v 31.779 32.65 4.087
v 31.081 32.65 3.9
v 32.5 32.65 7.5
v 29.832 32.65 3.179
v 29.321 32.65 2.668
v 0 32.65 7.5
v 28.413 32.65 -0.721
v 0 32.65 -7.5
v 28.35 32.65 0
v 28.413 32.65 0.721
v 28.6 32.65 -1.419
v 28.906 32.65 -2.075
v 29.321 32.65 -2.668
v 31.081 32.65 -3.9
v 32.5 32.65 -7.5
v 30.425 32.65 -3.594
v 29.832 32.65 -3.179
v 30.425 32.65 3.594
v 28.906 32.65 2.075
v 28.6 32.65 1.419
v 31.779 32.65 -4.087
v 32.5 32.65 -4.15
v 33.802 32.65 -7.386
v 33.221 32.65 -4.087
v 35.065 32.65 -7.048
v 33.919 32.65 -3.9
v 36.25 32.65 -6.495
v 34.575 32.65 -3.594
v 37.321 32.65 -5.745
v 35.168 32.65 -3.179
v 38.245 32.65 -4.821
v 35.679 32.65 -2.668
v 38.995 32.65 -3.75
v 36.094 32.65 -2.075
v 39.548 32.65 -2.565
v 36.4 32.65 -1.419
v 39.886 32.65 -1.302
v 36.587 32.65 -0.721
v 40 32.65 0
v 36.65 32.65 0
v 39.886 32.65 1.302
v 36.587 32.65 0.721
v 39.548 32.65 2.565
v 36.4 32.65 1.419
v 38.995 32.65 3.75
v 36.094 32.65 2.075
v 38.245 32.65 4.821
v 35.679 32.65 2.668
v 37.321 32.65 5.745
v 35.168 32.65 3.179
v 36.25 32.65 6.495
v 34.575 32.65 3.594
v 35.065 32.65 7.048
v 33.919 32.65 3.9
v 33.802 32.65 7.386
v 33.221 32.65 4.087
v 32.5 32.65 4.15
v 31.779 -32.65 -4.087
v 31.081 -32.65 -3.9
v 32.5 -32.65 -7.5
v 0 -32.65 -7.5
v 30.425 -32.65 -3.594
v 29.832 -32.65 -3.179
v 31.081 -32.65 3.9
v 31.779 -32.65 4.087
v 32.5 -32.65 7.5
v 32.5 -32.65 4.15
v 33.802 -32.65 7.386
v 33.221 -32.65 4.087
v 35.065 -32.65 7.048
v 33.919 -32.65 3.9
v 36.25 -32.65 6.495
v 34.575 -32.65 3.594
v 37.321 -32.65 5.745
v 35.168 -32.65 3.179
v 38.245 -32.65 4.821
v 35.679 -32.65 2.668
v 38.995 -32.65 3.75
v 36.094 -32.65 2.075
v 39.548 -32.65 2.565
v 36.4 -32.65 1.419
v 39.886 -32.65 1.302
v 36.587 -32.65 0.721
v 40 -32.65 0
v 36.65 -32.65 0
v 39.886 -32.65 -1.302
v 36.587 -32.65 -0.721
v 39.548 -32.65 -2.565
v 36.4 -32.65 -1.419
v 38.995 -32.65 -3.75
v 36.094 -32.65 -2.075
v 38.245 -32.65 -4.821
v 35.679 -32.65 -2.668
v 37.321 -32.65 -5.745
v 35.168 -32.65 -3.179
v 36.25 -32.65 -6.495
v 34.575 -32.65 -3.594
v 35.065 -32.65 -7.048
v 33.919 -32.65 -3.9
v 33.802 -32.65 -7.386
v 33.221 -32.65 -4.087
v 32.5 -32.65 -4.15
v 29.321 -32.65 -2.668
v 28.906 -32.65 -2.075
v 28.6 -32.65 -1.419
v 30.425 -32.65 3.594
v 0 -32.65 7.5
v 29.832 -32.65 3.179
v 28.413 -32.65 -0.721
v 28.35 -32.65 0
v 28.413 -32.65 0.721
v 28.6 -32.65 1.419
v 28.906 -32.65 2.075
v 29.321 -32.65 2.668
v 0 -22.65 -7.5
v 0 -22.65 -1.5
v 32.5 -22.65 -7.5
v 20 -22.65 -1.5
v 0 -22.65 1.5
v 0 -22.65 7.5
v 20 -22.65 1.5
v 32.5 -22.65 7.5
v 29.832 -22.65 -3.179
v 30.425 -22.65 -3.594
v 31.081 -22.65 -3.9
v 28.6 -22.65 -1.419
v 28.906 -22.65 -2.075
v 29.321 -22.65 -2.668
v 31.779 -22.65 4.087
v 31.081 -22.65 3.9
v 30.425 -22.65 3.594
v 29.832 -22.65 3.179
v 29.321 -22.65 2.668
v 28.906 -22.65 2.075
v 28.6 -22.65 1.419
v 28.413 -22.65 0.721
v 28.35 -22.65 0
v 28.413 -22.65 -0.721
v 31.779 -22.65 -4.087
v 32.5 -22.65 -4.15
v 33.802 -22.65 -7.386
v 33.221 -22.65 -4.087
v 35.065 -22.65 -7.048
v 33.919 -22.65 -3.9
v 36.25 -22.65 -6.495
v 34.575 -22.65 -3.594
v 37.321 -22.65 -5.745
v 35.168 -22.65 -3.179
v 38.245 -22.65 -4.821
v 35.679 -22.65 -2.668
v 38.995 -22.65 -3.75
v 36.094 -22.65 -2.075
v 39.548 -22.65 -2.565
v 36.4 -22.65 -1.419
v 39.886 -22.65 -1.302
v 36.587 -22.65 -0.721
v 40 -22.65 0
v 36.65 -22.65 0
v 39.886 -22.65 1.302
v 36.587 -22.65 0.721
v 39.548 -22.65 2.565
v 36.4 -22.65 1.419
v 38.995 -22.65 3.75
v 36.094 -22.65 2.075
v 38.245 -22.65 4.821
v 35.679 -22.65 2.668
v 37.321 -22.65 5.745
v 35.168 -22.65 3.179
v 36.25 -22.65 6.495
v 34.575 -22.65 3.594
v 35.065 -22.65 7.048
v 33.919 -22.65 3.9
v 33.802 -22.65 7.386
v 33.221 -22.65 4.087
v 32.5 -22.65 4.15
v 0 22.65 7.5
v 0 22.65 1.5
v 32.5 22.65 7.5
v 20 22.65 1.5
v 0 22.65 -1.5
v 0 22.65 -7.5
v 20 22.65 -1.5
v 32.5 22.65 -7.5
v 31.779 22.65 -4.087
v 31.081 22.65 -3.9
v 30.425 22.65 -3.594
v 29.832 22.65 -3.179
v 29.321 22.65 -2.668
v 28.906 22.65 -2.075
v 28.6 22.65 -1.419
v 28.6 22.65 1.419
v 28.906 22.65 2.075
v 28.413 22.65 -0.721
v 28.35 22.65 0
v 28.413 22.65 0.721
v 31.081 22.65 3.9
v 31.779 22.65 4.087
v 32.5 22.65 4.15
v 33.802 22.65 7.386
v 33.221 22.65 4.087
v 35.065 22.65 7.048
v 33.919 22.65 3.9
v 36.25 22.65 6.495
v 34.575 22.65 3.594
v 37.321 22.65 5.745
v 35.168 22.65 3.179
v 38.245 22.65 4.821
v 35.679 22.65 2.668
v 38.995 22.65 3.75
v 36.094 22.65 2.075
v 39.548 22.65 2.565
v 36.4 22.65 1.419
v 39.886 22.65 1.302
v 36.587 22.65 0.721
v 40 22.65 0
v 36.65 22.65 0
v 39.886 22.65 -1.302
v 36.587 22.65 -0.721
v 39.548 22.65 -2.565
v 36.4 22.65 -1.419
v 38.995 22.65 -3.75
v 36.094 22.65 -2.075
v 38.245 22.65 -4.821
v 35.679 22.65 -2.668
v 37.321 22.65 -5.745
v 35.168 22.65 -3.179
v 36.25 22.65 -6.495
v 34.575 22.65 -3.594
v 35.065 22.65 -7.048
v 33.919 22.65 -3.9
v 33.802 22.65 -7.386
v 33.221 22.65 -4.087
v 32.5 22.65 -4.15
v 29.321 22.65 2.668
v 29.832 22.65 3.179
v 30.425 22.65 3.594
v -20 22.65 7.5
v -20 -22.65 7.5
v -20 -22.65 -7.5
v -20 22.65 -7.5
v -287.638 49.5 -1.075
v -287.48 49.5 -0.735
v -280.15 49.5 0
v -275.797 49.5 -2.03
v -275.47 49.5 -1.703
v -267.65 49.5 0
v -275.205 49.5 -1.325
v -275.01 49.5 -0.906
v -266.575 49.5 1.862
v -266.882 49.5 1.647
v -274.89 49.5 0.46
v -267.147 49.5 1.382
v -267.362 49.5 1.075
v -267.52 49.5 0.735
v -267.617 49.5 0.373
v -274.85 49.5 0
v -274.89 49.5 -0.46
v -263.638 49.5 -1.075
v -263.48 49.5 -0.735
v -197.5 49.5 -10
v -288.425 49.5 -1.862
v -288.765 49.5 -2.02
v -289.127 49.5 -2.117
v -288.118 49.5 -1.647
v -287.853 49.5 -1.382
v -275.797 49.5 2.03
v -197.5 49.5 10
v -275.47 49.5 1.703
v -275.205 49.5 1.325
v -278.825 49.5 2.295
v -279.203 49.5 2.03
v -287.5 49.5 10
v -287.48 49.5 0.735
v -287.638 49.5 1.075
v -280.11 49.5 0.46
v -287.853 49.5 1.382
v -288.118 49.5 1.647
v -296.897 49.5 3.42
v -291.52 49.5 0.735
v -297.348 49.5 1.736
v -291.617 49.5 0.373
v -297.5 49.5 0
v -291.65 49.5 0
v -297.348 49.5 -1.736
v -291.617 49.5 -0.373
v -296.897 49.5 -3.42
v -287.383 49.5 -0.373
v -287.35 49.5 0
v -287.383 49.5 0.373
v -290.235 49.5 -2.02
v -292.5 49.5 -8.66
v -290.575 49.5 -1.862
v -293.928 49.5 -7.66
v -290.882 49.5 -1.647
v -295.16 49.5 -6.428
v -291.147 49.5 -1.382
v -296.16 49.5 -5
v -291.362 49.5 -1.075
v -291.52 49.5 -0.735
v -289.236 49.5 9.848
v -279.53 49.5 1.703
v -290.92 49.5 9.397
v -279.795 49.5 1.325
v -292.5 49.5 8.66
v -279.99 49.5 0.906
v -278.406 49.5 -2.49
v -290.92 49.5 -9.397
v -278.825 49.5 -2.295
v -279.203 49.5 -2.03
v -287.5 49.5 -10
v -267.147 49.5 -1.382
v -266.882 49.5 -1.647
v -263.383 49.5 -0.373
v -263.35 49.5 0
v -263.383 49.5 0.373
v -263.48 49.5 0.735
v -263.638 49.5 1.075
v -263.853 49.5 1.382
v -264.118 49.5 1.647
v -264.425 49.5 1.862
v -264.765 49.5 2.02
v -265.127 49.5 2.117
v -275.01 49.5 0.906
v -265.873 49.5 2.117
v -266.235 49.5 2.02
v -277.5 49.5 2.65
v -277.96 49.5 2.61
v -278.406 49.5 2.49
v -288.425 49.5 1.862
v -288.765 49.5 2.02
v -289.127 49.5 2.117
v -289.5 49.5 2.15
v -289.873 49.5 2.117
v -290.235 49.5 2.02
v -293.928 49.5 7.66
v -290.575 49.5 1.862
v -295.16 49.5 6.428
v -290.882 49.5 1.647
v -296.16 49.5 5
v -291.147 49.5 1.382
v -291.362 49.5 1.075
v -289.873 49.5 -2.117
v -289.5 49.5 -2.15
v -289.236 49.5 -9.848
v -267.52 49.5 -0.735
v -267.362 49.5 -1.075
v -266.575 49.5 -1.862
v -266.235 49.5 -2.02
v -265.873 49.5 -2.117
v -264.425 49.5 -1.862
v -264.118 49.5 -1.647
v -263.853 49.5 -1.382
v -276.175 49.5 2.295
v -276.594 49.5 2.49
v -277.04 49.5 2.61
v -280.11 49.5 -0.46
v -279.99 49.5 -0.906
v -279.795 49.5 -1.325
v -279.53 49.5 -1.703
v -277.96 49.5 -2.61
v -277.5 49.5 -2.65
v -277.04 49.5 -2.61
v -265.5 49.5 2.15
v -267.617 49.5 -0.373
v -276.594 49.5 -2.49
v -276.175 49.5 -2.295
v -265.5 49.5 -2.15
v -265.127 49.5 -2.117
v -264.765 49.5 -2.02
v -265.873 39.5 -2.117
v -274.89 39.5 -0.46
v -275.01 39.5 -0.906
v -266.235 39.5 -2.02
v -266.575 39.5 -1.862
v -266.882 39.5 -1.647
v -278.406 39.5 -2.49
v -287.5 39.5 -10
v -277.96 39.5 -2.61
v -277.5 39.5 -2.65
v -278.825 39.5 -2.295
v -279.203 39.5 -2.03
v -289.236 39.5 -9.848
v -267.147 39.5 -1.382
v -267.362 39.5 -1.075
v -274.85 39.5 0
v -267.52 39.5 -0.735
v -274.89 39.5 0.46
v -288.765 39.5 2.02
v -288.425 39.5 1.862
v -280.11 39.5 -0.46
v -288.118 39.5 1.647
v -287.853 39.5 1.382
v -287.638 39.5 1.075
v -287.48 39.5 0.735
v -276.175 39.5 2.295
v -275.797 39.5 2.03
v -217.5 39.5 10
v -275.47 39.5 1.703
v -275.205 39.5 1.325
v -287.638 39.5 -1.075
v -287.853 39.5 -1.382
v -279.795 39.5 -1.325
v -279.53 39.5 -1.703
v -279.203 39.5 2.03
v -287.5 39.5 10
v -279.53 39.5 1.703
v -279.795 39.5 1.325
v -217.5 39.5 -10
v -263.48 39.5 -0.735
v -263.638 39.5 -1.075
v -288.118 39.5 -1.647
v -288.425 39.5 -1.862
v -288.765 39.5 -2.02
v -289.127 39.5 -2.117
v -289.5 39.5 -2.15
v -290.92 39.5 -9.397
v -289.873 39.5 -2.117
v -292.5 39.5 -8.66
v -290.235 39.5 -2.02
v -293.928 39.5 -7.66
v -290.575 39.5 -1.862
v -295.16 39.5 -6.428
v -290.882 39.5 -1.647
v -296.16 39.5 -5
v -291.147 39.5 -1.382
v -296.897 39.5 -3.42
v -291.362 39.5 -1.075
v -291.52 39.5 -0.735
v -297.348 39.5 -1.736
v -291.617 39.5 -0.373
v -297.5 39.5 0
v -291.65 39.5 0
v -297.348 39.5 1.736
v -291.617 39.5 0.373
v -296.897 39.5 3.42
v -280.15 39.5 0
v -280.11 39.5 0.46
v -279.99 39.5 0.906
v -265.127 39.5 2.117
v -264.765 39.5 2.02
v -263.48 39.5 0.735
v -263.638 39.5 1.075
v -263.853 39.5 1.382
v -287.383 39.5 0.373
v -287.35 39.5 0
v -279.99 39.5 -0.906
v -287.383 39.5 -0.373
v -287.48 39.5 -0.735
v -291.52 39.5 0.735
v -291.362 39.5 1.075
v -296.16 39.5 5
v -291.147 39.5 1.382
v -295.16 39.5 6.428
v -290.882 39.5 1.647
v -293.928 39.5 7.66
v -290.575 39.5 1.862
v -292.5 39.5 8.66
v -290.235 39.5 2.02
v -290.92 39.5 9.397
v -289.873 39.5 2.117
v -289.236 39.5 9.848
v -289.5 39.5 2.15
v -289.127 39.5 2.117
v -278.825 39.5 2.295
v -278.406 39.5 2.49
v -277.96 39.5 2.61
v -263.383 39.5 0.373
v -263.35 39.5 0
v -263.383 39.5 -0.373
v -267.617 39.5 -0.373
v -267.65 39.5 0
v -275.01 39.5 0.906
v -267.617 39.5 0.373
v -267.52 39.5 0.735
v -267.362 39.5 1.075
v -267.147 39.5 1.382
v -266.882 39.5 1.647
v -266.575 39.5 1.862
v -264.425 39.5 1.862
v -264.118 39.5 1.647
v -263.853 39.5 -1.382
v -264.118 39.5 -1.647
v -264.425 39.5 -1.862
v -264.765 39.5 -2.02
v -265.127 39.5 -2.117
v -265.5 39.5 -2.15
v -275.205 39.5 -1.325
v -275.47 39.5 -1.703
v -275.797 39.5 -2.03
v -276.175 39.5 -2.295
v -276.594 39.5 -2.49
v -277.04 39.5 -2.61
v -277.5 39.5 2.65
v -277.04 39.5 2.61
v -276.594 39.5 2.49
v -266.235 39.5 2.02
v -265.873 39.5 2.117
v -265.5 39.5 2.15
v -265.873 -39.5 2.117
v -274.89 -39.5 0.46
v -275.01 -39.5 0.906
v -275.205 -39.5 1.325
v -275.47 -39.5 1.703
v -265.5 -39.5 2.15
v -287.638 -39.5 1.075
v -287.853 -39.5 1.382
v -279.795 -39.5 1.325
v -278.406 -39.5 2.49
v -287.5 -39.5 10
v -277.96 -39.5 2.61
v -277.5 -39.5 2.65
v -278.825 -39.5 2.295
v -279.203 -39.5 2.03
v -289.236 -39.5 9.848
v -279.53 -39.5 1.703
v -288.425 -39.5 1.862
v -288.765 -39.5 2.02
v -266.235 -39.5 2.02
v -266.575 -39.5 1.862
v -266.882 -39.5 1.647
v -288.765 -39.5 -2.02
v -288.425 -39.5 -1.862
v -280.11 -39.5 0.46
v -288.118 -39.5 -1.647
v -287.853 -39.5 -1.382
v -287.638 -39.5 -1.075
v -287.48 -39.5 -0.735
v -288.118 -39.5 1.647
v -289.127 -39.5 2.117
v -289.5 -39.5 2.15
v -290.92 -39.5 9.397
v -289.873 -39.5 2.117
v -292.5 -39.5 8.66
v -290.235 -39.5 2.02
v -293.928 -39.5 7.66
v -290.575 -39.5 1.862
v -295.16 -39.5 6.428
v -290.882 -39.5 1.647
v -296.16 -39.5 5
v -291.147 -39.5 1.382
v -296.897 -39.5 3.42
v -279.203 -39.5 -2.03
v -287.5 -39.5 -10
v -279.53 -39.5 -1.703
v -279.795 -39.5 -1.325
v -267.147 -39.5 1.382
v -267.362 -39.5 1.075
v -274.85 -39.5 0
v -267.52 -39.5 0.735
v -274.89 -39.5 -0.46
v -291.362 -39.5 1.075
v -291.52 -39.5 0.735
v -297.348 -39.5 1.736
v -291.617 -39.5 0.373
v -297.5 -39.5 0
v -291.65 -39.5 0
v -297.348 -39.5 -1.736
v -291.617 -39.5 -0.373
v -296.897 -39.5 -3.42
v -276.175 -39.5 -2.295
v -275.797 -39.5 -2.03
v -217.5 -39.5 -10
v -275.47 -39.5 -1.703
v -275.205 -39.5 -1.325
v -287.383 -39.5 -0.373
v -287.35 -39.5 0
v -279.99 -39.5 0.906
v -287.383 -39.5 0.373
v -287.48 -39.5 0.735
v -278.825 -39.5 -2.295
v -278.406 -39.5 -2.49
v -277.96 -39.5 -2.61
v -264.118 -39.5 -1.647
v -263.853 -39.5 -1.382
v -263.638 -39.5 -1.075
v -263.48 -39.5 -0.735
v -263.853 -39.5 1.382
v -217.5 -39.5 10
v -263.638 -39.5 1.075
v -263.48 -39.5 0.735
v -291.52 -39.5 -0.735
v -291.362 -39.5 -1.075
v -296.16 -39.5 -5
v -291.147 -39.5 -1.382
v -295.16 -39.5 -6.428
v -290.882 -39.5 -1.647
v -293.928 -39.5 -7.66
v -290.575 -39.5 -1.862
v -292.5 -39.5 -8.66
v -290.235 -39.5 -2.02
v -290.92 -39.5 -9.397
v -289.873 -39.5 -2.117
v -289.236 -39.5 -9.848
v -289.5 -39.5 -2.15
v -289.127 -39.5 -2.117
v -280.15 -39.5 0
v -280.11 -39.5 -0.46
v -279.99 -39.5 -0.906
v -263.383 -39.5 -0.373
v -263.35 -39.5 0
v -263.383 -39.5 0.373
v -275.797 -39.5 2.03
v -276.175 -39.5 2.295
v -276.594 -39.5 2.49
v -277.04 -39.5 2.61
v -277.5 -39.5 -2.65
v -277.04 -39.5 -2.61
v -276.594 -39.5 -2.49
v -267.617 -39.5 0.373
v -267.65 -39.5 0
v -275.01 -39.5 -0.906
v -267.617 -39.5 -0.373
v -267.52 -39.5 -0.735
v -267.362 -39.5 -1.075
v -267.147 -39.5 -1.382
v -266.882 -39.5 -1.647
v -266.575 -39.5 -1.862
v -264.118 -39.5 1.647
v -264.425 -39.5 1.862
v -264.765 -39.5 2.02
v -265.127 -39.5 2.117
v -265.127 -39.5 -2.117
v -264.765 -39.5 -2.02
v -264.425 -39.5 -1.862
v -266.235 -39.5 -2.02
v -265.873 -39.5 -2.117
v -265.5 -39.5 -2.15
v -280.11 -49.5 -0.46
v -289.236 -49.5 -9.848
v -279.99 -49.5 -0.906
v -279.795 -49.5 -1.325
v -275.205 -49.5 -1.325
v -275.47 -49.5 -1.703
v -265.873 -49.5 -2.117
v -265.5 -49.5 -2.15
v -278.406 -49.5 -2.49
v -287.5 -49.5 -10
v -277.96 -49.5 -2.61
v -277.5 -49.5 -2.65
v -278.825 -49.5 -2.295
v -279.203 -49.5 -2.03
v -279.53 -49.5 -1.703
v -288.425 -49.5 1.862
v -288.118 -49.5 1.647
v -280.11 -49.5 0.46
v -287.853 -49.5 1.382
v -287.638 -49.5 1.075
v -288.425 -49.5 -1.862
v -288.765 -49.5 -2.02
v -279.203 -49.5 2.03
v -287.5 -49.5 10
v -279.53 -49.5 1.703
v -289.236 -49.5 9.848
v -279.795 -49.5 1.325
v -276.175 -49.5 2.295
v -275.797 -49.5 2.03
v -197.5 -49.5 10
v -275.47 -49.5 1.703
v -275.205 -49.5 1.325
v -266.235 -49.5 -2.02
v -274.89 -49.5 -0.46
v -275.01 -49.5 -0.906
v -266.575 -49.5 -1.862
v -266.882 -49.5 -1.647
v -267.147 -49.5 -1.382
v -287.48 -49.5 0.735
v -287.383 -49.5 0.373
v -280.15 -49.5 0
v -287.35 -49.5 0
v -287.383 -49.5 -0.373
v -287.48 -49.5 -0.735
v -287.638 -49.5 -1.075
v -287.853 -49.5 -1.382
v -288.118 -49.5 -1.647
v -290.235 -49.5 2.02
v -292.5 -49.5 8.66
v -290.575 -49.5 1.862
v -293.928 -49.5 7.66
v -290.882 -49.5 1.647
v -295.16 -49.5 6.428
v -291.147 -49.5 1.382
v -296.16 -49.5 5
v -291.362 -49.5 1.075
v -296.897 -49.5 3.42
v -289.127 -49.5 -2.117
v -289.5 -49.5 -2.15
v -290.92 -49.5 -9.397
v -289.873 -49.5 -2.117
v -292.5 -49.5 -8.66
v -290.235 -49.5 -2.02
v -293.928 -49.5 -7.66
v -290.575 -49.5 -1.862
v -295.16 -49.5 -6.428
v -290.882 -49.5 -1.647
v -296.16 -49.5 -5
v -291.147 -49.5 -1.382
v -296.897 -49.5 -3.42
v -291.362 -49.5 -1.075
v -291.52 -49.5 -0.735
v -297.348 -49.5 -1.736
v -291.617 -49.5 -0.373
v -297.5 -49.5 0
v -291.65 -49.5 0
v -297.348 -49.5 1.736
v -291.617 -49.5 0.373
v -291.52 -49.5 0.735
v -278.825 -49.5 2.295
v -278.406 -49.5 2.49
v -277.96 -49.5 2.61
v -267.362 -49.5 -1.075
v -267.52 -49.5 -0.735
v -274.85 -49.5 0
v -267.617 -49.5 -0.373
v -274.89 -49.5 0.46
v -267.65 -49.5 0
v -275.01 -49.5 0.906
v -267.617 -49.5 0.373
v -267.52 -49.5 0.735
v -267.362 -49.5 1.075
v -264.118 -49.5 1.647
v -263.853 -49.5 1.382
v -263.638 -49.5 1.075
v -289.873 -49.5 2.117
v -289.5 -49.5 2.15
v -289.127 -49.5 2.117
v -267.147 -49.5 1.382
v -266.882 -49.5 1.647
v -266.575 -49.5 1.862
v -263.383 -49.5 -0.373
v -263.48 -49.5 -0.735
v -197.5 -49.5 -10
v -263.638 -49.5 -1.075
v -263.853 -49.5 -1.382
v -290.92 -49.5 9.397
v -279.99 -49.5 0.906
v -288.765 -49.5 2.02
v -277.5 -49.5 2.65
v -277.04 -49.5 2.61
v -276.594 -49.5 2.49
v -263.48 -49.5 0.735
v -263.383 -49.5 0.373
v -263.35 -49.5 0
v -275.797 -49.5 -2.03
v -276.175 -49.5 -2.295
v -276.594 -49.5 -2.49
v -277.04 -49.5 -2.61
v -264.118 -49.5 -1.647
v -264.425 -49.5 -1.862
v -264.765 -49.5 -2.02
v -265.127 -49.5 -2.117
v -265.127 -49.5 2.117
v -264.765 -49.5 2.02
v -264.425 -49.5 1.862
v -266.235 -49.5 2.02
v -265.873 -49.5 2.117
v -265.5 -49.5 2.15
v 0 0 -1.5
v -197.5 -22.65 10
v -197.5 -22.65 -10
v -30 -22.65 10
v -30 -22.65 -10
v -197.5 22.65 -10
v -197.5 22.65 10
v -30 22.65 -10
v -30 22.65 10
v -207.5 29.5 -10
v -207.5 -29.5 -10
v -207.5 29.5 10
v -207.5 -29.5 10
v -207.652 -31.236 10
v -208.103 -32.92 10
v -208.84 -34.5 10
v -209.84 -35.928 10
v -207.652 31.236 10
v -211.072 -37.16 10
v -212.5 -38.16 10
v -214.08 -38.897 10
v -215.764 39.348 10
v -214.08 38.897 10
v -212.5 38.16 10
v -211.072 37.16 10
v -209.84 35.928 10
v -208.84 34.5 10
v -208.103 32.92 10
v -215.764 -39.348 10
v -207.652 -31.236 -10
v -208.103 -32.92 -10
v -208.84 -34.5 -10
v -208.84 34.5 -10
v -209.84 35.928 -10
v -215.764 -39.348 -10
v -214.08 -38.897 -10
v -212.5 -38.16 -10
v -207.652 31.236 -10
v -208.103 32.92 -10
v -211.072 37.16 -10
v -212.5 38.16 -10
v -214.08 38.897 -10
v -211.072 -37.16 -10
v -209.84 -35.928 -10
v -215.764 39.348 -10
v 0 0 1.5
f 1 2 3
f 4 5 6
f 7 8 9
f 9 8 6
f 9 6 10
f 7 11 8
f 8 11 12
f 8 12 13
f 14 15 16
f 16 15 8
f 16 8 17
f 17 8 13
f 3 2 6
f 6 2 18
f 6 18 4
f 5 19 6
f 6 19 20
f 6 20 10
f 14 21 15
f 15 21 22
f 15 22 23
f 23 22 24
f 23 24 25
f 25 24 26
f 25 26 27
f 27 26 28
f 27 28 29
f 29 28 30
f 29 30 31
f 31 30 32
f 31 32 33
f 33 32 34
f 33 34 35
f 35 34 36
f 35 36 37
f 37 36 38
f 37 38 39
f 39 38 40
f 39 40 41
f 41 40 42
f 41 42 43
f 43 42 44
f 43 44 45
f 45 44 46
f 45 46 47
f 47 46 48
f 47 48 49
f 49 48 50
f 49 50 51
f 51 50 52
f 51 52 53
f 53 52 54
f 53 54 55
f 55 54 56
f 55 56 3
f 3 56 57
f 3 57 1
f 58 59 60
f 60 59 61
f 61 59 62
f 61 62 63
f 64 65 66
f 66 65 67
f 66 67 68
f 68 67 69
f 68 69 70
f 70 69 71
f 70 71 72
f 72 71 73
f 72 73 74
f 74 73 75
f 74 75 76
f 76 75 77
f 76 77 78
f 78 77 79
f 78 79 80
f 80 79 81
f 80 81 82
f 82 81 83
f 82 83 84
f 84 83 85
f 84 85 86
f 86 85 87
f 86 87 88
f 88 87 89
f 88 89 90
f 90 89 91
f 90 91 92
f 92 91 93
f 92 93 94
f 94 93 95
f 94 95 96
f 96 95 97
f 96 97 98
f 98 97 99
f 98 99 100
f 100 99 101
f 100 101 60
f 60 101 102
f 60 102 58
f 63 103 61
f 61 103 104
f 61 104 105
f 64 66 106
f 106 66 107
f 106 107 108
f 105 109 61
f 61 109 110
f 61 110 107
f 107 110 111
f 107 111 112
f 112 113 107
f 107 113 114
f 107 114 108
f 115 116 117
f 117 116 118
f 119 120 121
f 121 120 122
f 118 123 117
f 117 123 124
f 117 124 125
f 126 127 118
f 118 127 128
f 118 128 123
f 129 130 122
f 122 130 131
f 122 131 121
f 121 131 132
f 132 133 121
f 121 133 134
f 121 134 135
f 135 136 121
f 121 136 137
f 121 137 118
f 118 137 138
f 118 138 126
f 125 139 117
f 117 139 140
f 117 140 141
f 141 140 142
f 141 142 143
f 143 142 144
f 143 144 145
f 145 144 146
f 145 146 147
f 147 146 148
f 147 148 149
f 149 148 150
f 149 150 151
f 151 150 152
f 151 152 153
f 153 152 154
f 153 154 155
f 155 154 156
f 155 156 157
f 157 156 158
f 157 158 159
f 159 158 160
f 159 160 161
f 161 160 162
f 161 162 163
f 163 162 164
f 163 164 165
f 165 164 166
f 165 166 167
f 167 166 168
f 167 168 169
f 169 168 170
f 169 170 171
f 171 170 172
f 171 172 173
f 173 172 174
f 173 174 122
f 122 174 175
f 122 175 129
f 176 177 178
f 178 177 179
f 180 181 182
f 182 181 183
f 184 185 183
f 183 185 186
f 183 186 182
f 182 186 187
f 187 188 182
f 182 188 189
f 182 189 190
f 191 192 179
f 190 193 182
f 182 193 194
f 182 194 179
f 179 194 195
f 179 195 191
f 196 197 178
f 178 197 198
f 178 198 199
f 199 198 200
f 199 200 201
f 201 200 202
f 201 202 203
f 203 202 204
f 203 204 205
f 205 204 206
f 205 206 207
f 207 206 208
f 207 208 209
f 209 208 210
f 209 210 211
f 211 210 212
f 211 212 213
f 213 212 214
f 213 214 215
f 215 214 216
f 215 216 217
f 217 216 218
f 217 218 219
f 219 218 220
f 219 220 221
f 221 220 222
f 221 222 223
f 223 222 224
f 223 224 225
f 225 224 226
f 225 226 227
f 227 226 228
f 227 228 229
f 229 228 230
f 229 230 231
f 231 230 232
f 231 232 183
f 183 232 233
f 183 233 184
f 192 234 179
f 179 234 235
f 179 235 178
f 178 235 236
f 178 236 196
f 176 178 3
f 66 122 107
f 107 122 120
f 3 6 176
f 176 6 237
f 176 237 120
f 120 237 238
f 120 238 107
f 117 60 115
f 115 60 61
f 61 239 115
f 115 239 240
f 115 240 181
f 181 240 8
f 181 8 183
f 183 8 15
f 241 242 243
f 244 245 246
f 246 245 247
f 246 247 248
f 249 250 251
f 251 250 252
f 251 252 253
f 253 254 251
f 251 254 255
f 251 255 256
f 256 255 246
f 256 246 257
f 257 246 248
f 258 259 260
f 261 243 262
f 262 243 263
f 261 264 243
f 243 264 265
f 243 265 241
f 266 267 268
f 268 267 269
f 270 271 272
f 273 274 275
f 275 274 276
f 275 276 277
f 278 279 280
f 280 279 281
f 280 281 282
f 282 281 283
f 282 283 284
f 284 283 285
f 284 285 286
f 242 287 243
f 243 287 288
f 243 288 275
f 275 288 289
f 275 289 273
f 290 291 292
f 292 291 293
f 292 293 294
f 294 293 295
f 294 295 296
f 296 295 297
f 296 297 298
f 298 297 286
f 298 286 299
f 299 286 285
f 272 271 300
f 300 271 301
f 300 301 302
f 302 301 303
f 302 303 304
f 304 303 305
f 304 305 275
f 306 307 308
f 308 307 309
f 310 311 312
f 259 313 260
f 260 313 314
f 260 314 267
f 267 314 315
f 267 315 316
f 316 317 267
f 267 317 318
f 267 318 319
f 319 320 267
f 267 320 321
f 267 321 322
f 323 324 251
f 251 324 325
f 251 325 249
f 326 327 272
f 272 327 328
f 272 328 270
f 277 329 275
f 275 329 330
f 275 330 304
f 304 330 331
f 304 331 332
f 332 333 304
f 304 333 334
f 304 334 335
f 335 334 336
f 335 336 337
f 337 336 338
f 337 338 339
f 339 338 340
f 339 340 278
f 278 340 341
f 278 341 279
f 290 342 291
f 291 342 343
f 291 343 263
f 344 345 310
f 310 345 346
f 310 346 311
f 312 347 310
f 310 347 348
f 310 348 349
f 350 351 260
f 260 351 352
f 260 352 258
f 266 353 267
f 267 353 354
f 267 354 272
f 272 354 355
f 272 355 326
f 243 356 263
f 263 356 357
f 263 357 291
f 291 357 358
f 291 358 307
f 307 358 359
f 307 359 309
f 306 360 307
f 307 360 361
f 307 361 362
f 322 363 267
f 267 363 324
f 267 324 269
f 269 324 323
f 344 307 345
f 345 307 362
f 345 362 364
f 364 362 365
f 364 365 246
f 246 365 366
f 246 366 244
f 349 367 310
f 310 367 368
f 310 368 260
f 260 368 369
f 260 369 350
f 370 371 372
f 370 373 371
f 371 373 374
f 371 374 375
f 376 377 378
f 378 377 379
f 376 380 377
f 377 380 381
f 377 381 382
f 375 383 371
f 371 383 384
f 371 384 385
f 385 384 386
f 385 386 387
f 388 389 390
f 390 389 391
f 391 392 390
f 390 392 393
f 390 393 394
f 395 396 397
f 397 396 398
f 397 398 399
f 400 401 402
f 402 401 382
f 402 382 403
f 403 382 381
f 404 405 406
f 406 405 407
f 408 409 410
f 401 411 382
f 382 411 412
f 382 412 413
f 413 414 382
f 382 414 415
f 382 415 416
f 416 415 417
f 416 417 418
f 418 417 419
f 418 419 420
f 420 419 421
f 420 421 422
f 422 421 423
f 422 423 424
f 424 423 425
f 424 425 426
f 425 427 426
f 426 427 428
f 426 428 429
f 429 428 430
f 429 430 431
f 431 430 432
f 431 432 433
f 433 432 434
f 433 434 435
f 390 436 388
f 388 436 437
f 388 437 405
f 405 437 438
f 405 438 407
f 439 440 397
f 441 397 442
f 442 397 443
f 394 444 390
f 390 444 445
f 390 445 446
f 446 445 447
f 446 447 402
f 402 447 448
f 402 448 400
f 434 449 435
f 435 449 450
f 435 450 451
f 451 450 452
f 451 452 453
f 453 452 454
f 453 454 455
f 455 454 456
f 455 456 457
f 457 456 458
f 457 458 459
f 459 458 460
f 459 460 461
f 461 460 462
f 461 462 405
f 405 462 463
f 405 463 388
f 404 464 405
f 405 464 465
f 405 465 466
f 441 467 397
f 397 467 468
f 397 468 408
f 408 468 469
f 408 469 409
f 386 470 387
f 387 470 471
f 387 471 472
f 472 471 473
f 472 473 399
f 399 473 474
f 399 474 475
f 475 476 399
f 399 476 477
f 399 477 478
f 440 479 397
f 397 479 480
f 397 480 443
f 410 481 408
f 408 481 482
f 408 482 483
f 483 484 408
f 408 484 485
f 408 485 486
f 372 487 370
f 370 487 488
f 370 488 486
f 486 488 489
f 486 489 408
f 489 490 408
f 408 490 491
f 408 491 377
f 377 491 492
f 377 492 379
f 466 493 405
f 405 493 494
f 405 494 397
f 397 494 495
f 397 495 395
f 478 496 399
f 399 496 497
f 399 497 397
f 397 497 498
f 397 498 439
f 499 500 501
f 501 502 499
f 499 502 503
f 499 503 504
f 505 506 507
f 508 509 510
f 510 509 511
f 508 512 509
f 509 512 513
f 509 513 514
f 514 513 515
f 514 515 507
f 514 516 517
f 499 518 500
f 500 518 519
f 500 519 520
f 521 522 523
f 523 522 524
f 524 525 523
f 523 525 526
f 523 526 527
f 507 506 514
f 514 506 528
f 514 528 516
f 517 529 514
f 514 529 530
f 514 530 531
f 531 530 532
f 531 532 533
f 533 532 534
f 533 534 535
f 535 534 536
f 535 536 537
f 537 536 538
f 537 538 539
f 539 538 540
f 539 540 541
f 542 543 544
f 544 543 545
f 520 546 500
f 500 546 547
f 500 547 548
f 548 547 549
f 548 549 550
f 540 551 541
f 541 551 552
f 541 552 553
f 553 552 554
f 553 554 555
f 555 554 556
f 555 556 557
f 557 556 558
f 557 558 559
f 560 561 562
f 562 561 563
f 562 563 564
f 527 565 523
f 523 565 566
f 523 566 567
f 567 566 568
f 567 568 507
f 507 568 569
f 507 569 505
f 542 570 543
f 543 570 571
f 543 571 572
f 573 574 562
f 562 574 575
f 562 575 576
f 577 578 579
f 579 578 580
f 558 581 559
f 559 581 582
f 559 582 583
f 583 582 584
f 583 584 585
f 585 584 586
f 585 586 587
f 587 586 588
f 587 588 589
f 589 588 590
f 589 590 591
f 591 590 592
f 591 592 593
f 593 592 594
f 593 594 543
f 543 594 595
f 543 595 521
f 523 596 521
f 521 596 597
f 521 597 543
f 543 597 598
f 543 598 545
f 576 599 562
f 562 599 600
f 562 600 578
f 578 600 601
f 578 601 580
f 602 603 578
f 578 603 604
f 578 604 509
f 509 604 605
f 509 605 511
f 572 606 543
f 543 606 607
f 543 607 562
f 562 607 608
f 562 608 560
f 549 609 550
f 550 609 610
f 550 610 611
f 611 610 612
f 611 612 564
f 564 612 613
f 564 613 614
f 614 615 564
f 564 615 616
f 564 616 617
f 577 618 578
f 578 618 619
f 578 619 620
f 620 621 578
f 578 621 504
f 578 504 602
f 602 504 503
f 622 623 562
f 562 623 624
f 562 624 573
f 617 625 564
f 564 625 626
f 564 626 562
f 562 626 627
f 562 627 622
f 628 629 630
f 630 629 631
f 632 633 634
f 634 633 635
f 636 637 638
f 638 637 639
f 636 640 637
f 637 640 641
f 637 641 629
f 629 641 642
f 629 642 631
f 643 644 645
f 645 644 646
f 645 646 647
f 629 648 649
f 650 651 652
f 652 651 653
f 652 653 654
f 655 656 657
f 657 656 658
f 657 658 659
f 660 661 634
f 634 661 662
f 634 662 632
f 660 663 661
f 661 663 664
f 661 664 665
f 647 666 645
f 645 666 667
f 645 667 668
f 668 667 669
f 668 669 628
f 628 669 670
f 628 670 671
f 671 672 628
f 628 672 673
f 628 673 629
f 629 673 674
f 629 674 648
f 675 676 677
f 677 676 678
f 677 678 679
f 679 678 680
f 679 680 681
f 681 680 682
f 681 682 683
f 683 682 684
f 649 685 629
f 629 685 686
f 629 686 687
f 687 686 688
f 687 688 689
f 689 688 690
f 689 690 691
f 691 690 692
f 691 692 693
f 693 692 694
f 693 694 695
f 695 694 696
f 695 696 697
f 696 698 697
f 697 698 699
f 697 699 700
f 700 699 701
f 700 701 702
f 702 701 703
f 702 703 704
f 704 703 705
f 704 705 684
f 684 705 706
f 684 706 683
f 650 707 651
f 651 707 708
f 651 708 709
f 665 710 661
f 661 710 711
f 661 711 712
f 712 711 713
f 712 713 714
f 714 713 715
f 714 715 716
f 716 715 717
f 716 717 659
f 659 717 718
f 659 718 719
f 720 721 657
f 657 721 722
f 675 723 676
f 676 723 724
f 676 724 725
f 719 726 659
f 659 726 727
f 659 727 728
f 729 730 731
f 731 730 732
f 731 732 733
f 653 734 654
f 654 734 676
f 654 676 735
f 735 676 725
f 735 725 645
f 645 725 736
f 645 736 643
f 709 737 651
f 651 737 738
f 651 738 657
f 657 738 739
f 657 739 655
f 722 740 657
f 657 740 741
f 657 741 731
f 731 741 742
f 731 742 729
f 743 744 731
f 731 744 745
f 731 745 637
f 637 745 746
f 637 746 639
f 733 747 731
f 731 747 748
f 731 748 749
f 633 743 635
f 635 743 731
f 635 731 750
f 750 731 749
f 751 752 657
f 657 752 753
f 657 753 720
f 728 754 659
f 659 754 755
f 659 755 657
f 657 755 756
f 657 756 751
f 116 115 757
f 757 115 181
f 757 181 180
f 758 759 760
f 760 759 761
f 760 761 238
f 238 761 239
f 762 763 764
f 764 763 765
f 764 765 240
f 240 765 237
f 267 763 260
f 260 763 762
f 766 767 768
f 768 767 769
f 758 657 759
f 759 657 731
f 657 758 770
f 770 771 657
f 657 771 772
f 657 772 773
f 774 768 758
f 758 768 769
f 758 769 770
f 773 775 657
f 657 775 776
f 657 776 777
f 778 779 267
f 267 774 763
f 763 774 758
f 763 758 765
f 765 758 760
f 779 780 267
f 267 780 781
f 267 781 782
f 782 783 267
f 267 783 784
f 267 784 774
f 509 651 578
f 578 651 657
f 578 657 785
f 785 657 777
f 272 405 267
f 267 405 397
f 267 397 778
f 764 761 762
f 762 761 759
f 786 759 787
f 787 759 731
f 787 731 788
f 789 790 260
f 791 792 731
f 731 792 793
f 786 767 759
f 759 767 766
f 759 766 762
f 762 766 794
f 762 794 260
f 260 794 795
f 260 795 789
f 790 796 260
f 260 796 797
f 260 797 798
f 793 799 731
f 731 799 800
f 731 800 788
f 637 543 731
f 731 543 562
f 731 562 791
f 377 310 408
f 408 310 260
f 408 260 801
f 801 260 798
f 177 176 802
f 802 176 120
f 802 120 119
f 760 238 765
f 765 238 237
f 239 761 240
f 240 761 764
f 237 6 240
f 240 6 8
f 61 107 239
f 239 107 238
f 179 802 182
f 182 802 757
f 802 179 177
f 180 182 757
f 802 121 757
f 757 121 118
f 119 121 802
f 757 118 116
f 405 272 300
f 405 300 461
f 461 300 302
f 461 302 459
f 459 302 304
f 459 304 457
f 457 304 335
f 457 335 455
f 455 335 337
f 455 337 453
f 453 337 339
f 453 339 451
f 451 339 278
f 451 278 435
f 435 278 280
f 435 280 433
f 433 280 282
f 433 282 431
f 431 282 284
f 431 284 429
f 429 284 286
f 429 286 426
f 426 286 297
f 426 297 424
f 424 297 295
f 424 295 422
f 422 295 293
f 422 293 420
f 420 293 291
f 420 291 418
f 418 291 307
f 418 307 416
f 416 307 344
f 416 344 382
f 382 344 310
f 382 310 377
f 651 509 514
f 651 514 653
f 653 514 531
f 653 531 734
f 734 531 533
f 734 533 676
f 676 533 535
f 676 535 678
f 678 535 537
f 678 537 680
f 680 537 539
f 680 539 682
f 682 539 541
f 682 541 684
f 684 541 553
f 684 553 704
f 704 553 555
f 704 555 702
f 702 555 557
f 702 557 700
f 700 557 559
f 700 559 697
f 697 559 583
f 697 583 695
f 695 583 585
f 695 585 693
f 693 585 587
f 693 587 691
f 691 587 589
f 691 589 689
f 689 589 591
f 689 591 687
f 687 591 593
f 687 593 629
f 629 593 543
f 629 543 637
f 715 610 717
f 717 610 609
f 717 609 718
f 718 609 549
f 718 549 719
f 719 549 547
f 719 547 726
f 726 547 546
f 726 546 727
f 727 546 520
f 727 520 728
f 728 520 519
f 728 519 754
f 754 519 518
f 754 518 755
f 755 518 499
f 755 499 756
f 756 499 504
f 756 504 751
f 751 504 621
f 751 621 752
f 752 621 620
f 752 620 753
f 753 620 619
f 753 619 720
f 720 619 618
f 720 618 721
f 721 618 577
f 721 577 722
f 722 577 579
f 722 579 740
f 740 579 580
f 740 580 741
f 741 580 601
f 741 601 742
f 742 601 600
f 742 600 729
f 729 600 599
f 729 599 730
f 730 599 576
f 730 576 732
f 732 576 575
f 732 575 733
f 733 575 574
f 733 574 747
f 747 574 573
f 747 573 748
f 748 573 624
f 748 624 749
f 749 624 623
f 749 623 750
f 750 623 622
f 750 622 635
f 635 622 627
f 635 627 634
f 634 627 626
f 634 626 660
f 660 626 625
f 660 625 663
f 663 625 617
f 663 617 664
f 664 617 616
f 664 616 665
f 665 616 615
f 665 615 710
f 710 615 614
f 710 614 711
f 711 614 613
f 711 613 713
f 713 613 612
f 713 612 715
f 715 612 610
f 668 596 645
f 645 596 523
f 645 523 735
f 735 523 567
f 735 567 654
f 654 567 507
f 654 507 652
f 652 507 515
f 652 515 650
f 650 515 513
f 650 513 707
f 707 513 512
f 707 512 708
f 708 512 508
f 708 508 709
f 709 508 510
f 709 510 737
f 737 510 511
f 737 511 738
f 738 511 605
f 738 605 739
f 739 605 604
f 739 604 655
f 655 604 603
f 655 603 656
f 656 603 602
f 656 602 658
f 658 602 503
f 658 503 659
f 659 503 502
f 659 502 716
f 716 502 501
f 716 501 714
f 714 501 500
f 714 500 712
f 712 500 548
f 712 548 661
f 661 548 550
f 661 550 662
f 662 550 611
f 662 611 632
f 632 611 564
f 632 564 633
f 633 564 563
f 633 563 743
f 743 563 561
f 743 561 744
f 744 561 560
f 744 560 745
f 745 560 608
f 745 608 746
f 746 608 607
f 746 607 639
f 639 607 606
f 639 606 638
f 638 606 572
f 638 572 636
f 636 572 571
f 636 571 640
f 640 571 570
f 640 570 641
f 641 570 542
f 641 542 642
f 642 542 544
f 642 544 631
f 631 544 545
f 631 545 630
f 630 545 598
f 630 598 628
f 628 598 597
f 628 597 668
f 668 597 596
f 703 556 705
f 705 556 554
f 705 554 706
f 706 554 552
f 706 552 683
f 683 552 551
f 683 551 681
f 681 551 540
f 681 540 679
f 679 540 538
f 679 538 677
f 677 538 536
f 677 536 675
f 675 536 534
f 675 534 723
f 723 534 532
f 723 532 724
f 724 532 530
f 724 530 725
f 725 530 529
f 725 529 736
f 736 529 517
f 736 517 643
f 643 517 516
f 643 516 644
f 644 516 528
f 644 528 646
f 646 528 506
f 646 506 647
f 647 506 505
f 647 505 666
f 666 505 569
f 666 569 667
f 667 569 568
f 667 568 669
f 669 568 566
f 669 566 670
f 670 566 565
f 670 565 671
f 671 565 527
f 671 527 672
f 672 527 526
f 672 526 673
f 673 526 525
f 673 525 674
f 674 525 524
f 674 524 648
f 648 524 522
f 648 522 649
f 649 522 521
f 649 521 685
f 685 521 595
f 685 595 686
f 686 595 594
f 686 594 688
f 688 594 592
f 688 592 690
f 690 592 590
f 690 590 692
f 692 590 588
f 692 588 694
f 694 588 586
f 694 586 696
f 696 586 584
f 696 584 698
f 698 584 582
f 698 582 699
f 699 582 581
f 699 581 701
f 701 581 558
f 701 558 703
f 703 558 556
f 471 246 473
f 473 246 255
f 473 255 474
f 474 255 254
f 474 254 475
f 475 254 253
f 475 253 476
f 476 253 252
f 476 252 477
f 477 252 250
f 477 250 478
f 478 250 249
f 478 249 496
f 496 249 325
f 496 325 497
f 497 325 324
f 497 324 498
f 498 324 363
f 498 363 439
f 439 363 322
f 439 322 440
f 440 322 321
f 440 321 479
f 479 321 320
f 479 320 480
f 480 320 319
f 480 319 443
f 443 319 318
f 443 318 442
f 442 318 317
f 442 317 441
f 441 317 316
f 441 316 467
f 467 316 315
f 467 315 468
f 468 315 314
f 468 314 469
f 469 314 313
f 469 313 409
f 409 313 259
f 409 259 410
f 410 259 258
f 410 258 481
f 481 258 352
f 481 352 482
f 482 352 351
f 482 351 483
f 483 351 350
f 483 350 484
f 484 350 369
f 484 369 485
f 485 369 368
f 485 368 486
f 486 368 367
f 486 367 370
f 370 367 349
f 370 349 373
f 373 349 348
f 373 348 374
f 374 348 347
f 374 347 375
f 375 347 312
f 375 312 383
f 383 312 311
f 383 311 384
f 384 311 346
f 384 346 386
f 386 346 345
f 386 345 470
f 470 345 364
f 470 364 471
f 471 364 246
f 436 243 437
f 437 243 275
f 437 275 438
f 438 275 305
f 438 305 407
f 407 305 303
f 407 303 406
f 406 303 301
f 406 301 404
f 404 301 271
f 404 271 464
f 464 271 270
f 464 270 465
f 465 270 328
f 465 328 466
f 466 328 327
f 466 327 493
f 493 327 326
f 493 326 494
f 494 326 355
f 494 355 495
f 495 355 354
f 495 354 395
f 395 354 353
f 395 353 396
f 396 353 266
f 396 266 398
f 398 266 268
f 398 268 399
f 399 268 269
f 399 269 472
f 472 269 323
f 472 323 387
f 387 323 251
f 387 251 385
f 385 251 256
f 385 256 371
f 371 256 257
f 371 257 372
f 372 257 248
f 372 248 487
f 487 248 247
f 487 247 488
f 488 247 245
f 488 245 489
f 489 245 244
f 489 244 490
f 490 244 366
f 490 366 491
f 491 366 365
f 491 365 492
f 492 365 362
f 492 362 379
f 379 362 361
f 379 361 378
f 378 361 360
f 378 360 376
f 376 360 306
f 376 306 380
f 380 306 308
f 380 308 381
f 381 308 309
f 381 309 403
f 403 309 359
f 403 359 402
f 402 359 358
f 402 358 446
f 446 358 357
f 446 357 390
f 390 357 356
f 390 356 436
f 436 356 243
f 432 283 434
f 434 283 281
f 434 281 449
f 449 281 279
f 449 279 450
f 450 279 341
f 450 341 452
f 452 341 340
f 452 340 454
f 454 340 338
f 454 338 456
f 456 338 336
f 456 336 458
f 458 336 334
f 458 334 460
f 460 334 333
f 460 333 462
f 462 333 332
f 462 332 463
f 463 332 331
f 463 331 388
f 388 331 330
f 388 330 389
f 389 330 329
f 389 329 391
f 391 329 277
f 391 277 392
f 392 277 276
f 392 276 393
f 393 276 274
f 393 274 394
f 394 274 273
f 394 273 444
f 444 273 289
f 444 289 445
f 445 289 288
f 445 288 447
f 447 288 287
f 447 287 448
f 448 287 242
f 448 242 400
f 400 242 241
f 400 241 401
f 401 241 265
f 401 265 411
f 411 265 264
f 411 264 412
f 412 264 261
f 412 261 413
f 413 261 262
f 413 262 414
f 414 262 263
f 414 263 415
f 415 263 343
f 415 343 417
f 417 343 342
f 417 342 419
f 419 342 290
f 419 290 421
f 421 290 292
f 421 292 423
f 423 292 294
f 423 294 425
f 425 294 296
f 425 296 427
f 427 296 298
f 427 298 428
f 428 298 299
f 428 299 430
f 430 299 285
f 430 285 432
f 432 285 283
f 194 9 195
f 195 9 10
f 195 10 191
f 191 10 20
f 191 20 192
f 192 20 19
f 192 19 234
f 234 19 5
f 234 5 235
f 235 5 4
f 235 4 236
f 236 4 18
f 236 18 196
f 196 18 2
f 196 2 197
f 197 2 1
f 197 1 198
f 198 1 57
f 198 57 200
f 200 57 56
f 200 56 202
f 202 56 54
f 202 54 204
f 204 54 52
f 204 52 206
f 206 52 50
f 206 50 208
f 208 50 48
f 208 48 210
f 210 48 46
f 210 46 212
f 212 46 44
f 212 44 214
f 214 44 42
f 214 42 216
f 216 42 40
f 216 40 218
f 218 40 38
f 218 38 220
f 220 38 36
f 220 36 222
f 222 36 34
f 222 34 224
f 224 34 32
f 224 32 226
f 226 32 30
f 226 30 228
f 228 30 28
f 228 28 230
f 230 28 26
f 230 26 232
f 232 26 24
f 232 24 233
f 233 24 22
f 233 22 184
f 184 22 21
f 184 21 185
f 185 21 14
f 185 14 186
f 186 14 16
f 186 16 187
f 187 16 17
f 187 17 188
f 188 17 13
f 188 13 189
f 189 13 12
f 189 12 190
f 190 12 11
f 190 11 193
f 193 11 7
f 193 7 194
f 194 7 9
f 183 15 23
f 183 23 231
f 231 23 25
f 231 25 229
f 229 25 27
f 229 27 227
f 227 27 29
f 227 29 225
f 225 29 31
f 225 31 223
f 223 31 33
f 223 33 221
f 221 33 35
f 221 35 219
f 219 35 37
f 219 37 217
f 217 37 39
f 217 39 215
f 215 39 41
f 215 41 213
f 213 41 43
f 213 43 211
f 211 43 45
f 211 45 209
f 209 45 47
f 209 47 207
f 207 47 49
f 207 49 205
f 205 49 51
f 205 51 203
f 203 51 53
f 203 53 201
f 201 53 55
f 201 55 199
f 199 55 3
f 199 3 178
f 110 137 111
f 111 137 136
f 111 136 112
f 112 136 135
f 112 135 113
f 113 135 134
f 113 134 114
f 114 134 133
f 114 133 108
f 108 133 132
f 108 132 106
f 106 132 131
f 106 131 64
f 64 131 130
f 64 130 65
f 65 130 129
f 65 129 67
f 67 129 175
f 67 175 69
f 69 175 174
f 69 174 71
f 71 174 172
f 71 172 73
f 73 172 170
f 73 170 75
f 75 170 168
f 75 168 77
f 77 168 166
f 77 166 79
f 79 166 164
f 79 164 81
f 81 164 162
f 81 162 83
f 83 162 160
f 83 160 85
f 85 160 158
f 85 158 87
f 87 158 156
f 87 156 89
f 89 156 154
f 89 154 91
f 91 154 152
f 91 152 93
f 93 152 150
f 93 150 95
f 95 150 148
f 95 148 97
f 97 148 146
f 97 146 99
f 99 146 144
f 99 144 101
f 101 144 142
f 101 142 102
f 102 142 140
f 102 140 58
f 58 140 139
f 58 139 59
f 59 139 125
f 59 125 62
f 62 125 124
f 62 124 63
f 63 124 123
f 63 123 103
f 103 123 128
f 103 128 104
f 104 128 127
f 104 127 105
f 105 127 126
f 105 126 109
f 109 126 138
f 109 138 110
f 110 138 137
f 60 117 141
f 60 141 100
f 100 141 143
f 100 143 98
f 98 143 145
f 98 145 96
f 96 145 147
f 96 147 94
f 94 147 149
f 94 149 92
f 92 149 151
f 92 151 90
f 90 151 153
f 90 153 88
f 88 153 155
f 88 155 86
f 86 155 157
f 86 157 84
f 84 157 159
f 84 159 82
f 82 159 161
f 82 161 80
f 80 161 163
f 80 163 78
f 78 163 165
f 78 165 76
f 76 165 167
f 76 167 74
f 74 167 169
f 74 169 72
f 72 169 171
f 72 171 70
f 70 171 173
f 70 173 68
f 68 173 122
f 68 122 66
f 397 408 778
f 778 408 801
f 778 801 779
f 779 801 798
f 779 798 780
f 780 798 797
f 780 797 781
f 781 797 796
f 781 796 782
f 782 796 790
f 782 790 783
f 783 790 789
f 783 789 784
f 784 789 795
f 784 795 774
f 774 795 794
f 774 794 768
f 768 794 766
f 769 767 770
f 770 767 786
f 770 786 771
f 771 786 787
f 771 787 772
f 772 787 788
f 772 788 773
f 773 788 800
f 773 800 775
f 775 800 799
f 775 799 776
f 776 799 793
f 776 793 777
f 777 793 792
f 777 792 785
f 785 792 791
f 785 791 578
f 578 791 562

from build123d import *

# Parameters (mm, degrees)
SKETCH_2_W               = 187.5
SKETCH_2_H               = 45.3
EXTRUDE_1_DEPTH          = 10
EXTRUDE_2_DEPTH          = 7.5
CHAMFER_1_SIZE           = 20
CHAMFER_1_SIZE_2         = 5
CHAMFER_2_SIZE           = 5
CHAMFER_2_SIZE_2         = 20
SKETCH_7_W               = 40
SKETCH_7_H               = 10
EXTRUDE_6_DEPTH          = 15
SKETCH_7_3_W             = 40
SKETCH_7_3_H             = 10
CUT_EXTRUDE_3_DEPTH      = 15
EXTRUDE_7_DEPTH          = 1.5
CUT_EXTRUDE_1_DEPTH      = 314.699298692
CUT_EXTRUDE_2_DEPTH      = 307.287238552
CUT_EXTRUDE_2_DEPTH_BACK = 307.287238552
FILLET_1_R               = 10


with BuildPart() as part:
    # 草图2 → 凸台-拉伸1 (new, symmetric)
    with BuildSketch(Plane.XY):
        with Locations((-103.75, 0)):
            Rectangle(SKETCH_2_W, SKETCH_2_H)
        Polygon((-297.5, 49.5), (-297.5, 39.5), (-207.5, 39.5), (-207.5, -39.5), (-297.5, -39.5), (-297.5, -49.5), (-197.5, -49.5), (-197.5, 49.5), align=None)
    extrude(amount=EXTRUDE_1_DEPTH, both=True)

    # 草图2<3> → 凸台-拉伸2 (add, symmetric)
    with BuildSketch(Plane.XY):
        Polygon((40, -22.65), (40, -12.65), (0, -12.65), (0, 12.65), (40, 12.65), (40, 22.65), (-10, 22.65), (-10, -22.65), align=None)
    extrude(amount=EXTRUDE_2_DEPTH, both=True)

    # 倒角1
    # the kernel refuses this chamfer: 20, 5 mm, written as the material it takes off along each edge
    with BuildSketch(Plane(origin=(-10, -74.592549995, 10), x_dir=(-0.9999563942249224, 0, 0.00933861064031752), z_dir=(0, 1, 0))) as chamfer_1_piece_1_section:
        Polygon((CHAMFER_1_SIZE * 0.999956394225, -CHAMFER_1_SIZE * 0.00933861064032), (-CHAMFER_1_SIZE_2 * 0.00933861064032, -CHAMFER_1_SIZE_2 * 0.999956394225), (0, 0), align=None)
    chamfer_1_piece_1 = extrude(amount=149.185099991, mode=Mode.PRIVATE)
    chamfer_1_piece_1 = split(chamfer_1_piece_1, bisect_by=Plane(origin=(-18.245866107, 0, 7.5), z_dir=(0, 0, 1)), keep=Keep.TOP, mode=Mode.PRIVATE)
    add(chamfer_1_piece_1, mode=Mode.SUBTRACT)

    # 倒角2
    # the kernel refuses this chamfer: 20, 5 mm, written as the material it takes off along each edge
    with BuildSketch(Plane(origin=(-10, -74.592549995, -10), x_dir=(0.14778356633657133, 0, 0.9890197255468893), z_dir=(0, 1, 0))) as chamfer_2_piece_1_section:
        Polygon((CHAMFER_2_SIZE * 0.989019725547, -CHAMFER_2_SIZE * 0.147783566337), (-CHAMFER_2_SIZE_2 * 0.147783566337, -CHAMFER_2_SIZE_2 * 0.989019725547), (0, 0), align=None)
    chamfer_2_piece_1 = extrude(amount=149.185099991, mode=Mode.PRIVATE)
    chamfer_2_piece_1 = split(chamfer_2_piece_1, bisect_by=Plane(origin=(-18.245866107, 0, -7.5), z_dir=(0, 0, -1)), keep=Keep.TOP, mode=Mode.PRIVATE)
    add(chamfer_2_piece_1, mode=Mode.SUBTRACT)

    # 草图7 → 凸台-拉伸6 (add)
    with BuildSketch(Plane.XY.offset(7.5)):
        Polygon((0, 22.65), (0, 32.65), (-20, 22.65), align=None)
        with Locations((20, 27.65)):
            Rectangle(SKETCH_7_W, SKETCH_7_H)
        Polygon((40, -32.65), (0, -32.65), (-20, -22.65), (40, -22.65), align=None)
    extrude(amount=-EXTRUDE_6_DEPTH)

    # 草图7<3> → 切除-拉伸3 (cut)
    with BuildSketch(Plane.XY.offset(7.5)):
        with Locations((20, 17.65)):
            Rectangle(SKETCH_7_3_W, SKETCH_7_3_H)
        with Locations((20, -17.65)):
            Rectangle(SKETCH_7_3_W, SKETCH_7_3_H)
    extrude(amount=-CUT_EXTRUDE_3_DEPTH, mode=Mode.SUBTRACT)

    # 草图8 → 凸台-拉伸7 (add, symmetric)
    with BuildSketch(Plane.XY):
        Polygon((0, 22.65), (0, 0), (20, 22.65), align=None)
        Polygon((20, -22.65), (0, 0), (0, -22.65), align=None)
    extrude(amount=EXTRUDE_7_DEPTH, both=True)

    # 草图3 → 切除-拉伸1 (cut, through all)
    with BuildSketch(Plane(origin=(0, 49.5, 0), x_dir=(1, 0, 0), z_dir=(0, 1, 0))):
        with BuildLine():
            ThreePointArc((-297.5, 0), (-294.571067812, 7.071067812), (-287.5, 10))
            Line((-287.5, 10), (-297.5, 10))
            Line((-297.5, 10), (-297.5, 0))
        make_face()
        with BuildLine():
            Line((-297.5, -10), (-287.5, -10))
            ThreePointArc((-287.5, -10), (-294.571067812, -7.071067812), (-297.5, 0))
            Line((-297.5, 0), (-297.5, -10))
        make_face()
        with BuildLine():
            ThreePointArc((-291.65, 0), (-289.5, -2.15), (-287.35, 0))
            Line((-287.35, 0), (-291.65, 0))
        make_face()
        with BuildLine():
            Line((-291.65, 0), (-287.35, 0))
            ThreePointArc((-287.35, 0), (-289.5, 2.15), (-291.65, 0))
        make_face()
        with BuildLine():
            ThreePointArc((-280.15, 0), (-277.5, -2.65), (-274.85, 0))
            Line((-274.85, 0), (-280.15, 0))
        make_face()
        with BuildLine():
            Line((-280.15, 0), (-274.85, 0))
            ThreePointArc((-274.85, 0), (-277.5, 2.65), (-280.15, 0))
        make_face()
        with BuildLine():
            ThreePointArc((-267.65, 0), (-265.5, -2.15), (-263.35, 0))
            Line((-263.35, 0), (-267.65, 0))
        make_face()
        with BuildLine():
            Line((-267.65, 0), (-263.35, 0))
            ThreePointArc((-263.35, 0), (-265.5, 2.15), (-267.65, 0))
        make_face()
    extrude(amount=-CUT_EXTRUDE_1_DEPTH, mode=Mode.SUBTRACT)

    # 草图4 → 切除-拉伸2 (cut, two sides: drawn at the far end of the back side and taken through both)
    with BuildSketch(Plane(origin=(0, 22.65, 0), x_dir=(1, 0, 0), z_dir=(0, 1, 0)).offset(-CUT_EXTRUDE_2_DEPTH_BACK)):
        with BuildLine():
            Line((28.35, 0), (36.65, 0))
            ThreePointArc((36.65, 0), (32.5, 4.15), (28.35, 0))
        make_face()
        with BuildLine():
            ThreePointArc((28.35, 0), (32.5, -4.15), (36.65, 0))
            Line((36.65, 0), (28.35, 0))
        make_face()
        with BuildLine():
            ThreePointArc((32.5, 7.5), (37.803300859, 5.303300859), (40, 0))
            Line((40, 0), (40, 7.5))
            Line((40, 7.5), (32.5, 7.5))
        make_face()
        with BuildLine():
            Line((40, -7.5), (40, 0))
            ThreePointArc((40, 0), (37.803300859, -5.303300859), (32.5, -7.5))
            Line((32.5, -7.5), (40, -7.5))
        make_face()
    extrude(amount=CUT_EXTRUDE_2_DEPTH + CUT_EXTRUDE_2_DEPTH_BACK, mode=Mode.SUBTRACT)

    # 圆角1
    fillet_1_edges = [part.edges().sort_by_distance(p)[0] for p in [
        (-207.5, -39.5, 0),
        (-207.5, 39.5, 0),
    ]]
    fillet(fillet_1_edges, radius=FILLET_1_R)


solid = part.part
